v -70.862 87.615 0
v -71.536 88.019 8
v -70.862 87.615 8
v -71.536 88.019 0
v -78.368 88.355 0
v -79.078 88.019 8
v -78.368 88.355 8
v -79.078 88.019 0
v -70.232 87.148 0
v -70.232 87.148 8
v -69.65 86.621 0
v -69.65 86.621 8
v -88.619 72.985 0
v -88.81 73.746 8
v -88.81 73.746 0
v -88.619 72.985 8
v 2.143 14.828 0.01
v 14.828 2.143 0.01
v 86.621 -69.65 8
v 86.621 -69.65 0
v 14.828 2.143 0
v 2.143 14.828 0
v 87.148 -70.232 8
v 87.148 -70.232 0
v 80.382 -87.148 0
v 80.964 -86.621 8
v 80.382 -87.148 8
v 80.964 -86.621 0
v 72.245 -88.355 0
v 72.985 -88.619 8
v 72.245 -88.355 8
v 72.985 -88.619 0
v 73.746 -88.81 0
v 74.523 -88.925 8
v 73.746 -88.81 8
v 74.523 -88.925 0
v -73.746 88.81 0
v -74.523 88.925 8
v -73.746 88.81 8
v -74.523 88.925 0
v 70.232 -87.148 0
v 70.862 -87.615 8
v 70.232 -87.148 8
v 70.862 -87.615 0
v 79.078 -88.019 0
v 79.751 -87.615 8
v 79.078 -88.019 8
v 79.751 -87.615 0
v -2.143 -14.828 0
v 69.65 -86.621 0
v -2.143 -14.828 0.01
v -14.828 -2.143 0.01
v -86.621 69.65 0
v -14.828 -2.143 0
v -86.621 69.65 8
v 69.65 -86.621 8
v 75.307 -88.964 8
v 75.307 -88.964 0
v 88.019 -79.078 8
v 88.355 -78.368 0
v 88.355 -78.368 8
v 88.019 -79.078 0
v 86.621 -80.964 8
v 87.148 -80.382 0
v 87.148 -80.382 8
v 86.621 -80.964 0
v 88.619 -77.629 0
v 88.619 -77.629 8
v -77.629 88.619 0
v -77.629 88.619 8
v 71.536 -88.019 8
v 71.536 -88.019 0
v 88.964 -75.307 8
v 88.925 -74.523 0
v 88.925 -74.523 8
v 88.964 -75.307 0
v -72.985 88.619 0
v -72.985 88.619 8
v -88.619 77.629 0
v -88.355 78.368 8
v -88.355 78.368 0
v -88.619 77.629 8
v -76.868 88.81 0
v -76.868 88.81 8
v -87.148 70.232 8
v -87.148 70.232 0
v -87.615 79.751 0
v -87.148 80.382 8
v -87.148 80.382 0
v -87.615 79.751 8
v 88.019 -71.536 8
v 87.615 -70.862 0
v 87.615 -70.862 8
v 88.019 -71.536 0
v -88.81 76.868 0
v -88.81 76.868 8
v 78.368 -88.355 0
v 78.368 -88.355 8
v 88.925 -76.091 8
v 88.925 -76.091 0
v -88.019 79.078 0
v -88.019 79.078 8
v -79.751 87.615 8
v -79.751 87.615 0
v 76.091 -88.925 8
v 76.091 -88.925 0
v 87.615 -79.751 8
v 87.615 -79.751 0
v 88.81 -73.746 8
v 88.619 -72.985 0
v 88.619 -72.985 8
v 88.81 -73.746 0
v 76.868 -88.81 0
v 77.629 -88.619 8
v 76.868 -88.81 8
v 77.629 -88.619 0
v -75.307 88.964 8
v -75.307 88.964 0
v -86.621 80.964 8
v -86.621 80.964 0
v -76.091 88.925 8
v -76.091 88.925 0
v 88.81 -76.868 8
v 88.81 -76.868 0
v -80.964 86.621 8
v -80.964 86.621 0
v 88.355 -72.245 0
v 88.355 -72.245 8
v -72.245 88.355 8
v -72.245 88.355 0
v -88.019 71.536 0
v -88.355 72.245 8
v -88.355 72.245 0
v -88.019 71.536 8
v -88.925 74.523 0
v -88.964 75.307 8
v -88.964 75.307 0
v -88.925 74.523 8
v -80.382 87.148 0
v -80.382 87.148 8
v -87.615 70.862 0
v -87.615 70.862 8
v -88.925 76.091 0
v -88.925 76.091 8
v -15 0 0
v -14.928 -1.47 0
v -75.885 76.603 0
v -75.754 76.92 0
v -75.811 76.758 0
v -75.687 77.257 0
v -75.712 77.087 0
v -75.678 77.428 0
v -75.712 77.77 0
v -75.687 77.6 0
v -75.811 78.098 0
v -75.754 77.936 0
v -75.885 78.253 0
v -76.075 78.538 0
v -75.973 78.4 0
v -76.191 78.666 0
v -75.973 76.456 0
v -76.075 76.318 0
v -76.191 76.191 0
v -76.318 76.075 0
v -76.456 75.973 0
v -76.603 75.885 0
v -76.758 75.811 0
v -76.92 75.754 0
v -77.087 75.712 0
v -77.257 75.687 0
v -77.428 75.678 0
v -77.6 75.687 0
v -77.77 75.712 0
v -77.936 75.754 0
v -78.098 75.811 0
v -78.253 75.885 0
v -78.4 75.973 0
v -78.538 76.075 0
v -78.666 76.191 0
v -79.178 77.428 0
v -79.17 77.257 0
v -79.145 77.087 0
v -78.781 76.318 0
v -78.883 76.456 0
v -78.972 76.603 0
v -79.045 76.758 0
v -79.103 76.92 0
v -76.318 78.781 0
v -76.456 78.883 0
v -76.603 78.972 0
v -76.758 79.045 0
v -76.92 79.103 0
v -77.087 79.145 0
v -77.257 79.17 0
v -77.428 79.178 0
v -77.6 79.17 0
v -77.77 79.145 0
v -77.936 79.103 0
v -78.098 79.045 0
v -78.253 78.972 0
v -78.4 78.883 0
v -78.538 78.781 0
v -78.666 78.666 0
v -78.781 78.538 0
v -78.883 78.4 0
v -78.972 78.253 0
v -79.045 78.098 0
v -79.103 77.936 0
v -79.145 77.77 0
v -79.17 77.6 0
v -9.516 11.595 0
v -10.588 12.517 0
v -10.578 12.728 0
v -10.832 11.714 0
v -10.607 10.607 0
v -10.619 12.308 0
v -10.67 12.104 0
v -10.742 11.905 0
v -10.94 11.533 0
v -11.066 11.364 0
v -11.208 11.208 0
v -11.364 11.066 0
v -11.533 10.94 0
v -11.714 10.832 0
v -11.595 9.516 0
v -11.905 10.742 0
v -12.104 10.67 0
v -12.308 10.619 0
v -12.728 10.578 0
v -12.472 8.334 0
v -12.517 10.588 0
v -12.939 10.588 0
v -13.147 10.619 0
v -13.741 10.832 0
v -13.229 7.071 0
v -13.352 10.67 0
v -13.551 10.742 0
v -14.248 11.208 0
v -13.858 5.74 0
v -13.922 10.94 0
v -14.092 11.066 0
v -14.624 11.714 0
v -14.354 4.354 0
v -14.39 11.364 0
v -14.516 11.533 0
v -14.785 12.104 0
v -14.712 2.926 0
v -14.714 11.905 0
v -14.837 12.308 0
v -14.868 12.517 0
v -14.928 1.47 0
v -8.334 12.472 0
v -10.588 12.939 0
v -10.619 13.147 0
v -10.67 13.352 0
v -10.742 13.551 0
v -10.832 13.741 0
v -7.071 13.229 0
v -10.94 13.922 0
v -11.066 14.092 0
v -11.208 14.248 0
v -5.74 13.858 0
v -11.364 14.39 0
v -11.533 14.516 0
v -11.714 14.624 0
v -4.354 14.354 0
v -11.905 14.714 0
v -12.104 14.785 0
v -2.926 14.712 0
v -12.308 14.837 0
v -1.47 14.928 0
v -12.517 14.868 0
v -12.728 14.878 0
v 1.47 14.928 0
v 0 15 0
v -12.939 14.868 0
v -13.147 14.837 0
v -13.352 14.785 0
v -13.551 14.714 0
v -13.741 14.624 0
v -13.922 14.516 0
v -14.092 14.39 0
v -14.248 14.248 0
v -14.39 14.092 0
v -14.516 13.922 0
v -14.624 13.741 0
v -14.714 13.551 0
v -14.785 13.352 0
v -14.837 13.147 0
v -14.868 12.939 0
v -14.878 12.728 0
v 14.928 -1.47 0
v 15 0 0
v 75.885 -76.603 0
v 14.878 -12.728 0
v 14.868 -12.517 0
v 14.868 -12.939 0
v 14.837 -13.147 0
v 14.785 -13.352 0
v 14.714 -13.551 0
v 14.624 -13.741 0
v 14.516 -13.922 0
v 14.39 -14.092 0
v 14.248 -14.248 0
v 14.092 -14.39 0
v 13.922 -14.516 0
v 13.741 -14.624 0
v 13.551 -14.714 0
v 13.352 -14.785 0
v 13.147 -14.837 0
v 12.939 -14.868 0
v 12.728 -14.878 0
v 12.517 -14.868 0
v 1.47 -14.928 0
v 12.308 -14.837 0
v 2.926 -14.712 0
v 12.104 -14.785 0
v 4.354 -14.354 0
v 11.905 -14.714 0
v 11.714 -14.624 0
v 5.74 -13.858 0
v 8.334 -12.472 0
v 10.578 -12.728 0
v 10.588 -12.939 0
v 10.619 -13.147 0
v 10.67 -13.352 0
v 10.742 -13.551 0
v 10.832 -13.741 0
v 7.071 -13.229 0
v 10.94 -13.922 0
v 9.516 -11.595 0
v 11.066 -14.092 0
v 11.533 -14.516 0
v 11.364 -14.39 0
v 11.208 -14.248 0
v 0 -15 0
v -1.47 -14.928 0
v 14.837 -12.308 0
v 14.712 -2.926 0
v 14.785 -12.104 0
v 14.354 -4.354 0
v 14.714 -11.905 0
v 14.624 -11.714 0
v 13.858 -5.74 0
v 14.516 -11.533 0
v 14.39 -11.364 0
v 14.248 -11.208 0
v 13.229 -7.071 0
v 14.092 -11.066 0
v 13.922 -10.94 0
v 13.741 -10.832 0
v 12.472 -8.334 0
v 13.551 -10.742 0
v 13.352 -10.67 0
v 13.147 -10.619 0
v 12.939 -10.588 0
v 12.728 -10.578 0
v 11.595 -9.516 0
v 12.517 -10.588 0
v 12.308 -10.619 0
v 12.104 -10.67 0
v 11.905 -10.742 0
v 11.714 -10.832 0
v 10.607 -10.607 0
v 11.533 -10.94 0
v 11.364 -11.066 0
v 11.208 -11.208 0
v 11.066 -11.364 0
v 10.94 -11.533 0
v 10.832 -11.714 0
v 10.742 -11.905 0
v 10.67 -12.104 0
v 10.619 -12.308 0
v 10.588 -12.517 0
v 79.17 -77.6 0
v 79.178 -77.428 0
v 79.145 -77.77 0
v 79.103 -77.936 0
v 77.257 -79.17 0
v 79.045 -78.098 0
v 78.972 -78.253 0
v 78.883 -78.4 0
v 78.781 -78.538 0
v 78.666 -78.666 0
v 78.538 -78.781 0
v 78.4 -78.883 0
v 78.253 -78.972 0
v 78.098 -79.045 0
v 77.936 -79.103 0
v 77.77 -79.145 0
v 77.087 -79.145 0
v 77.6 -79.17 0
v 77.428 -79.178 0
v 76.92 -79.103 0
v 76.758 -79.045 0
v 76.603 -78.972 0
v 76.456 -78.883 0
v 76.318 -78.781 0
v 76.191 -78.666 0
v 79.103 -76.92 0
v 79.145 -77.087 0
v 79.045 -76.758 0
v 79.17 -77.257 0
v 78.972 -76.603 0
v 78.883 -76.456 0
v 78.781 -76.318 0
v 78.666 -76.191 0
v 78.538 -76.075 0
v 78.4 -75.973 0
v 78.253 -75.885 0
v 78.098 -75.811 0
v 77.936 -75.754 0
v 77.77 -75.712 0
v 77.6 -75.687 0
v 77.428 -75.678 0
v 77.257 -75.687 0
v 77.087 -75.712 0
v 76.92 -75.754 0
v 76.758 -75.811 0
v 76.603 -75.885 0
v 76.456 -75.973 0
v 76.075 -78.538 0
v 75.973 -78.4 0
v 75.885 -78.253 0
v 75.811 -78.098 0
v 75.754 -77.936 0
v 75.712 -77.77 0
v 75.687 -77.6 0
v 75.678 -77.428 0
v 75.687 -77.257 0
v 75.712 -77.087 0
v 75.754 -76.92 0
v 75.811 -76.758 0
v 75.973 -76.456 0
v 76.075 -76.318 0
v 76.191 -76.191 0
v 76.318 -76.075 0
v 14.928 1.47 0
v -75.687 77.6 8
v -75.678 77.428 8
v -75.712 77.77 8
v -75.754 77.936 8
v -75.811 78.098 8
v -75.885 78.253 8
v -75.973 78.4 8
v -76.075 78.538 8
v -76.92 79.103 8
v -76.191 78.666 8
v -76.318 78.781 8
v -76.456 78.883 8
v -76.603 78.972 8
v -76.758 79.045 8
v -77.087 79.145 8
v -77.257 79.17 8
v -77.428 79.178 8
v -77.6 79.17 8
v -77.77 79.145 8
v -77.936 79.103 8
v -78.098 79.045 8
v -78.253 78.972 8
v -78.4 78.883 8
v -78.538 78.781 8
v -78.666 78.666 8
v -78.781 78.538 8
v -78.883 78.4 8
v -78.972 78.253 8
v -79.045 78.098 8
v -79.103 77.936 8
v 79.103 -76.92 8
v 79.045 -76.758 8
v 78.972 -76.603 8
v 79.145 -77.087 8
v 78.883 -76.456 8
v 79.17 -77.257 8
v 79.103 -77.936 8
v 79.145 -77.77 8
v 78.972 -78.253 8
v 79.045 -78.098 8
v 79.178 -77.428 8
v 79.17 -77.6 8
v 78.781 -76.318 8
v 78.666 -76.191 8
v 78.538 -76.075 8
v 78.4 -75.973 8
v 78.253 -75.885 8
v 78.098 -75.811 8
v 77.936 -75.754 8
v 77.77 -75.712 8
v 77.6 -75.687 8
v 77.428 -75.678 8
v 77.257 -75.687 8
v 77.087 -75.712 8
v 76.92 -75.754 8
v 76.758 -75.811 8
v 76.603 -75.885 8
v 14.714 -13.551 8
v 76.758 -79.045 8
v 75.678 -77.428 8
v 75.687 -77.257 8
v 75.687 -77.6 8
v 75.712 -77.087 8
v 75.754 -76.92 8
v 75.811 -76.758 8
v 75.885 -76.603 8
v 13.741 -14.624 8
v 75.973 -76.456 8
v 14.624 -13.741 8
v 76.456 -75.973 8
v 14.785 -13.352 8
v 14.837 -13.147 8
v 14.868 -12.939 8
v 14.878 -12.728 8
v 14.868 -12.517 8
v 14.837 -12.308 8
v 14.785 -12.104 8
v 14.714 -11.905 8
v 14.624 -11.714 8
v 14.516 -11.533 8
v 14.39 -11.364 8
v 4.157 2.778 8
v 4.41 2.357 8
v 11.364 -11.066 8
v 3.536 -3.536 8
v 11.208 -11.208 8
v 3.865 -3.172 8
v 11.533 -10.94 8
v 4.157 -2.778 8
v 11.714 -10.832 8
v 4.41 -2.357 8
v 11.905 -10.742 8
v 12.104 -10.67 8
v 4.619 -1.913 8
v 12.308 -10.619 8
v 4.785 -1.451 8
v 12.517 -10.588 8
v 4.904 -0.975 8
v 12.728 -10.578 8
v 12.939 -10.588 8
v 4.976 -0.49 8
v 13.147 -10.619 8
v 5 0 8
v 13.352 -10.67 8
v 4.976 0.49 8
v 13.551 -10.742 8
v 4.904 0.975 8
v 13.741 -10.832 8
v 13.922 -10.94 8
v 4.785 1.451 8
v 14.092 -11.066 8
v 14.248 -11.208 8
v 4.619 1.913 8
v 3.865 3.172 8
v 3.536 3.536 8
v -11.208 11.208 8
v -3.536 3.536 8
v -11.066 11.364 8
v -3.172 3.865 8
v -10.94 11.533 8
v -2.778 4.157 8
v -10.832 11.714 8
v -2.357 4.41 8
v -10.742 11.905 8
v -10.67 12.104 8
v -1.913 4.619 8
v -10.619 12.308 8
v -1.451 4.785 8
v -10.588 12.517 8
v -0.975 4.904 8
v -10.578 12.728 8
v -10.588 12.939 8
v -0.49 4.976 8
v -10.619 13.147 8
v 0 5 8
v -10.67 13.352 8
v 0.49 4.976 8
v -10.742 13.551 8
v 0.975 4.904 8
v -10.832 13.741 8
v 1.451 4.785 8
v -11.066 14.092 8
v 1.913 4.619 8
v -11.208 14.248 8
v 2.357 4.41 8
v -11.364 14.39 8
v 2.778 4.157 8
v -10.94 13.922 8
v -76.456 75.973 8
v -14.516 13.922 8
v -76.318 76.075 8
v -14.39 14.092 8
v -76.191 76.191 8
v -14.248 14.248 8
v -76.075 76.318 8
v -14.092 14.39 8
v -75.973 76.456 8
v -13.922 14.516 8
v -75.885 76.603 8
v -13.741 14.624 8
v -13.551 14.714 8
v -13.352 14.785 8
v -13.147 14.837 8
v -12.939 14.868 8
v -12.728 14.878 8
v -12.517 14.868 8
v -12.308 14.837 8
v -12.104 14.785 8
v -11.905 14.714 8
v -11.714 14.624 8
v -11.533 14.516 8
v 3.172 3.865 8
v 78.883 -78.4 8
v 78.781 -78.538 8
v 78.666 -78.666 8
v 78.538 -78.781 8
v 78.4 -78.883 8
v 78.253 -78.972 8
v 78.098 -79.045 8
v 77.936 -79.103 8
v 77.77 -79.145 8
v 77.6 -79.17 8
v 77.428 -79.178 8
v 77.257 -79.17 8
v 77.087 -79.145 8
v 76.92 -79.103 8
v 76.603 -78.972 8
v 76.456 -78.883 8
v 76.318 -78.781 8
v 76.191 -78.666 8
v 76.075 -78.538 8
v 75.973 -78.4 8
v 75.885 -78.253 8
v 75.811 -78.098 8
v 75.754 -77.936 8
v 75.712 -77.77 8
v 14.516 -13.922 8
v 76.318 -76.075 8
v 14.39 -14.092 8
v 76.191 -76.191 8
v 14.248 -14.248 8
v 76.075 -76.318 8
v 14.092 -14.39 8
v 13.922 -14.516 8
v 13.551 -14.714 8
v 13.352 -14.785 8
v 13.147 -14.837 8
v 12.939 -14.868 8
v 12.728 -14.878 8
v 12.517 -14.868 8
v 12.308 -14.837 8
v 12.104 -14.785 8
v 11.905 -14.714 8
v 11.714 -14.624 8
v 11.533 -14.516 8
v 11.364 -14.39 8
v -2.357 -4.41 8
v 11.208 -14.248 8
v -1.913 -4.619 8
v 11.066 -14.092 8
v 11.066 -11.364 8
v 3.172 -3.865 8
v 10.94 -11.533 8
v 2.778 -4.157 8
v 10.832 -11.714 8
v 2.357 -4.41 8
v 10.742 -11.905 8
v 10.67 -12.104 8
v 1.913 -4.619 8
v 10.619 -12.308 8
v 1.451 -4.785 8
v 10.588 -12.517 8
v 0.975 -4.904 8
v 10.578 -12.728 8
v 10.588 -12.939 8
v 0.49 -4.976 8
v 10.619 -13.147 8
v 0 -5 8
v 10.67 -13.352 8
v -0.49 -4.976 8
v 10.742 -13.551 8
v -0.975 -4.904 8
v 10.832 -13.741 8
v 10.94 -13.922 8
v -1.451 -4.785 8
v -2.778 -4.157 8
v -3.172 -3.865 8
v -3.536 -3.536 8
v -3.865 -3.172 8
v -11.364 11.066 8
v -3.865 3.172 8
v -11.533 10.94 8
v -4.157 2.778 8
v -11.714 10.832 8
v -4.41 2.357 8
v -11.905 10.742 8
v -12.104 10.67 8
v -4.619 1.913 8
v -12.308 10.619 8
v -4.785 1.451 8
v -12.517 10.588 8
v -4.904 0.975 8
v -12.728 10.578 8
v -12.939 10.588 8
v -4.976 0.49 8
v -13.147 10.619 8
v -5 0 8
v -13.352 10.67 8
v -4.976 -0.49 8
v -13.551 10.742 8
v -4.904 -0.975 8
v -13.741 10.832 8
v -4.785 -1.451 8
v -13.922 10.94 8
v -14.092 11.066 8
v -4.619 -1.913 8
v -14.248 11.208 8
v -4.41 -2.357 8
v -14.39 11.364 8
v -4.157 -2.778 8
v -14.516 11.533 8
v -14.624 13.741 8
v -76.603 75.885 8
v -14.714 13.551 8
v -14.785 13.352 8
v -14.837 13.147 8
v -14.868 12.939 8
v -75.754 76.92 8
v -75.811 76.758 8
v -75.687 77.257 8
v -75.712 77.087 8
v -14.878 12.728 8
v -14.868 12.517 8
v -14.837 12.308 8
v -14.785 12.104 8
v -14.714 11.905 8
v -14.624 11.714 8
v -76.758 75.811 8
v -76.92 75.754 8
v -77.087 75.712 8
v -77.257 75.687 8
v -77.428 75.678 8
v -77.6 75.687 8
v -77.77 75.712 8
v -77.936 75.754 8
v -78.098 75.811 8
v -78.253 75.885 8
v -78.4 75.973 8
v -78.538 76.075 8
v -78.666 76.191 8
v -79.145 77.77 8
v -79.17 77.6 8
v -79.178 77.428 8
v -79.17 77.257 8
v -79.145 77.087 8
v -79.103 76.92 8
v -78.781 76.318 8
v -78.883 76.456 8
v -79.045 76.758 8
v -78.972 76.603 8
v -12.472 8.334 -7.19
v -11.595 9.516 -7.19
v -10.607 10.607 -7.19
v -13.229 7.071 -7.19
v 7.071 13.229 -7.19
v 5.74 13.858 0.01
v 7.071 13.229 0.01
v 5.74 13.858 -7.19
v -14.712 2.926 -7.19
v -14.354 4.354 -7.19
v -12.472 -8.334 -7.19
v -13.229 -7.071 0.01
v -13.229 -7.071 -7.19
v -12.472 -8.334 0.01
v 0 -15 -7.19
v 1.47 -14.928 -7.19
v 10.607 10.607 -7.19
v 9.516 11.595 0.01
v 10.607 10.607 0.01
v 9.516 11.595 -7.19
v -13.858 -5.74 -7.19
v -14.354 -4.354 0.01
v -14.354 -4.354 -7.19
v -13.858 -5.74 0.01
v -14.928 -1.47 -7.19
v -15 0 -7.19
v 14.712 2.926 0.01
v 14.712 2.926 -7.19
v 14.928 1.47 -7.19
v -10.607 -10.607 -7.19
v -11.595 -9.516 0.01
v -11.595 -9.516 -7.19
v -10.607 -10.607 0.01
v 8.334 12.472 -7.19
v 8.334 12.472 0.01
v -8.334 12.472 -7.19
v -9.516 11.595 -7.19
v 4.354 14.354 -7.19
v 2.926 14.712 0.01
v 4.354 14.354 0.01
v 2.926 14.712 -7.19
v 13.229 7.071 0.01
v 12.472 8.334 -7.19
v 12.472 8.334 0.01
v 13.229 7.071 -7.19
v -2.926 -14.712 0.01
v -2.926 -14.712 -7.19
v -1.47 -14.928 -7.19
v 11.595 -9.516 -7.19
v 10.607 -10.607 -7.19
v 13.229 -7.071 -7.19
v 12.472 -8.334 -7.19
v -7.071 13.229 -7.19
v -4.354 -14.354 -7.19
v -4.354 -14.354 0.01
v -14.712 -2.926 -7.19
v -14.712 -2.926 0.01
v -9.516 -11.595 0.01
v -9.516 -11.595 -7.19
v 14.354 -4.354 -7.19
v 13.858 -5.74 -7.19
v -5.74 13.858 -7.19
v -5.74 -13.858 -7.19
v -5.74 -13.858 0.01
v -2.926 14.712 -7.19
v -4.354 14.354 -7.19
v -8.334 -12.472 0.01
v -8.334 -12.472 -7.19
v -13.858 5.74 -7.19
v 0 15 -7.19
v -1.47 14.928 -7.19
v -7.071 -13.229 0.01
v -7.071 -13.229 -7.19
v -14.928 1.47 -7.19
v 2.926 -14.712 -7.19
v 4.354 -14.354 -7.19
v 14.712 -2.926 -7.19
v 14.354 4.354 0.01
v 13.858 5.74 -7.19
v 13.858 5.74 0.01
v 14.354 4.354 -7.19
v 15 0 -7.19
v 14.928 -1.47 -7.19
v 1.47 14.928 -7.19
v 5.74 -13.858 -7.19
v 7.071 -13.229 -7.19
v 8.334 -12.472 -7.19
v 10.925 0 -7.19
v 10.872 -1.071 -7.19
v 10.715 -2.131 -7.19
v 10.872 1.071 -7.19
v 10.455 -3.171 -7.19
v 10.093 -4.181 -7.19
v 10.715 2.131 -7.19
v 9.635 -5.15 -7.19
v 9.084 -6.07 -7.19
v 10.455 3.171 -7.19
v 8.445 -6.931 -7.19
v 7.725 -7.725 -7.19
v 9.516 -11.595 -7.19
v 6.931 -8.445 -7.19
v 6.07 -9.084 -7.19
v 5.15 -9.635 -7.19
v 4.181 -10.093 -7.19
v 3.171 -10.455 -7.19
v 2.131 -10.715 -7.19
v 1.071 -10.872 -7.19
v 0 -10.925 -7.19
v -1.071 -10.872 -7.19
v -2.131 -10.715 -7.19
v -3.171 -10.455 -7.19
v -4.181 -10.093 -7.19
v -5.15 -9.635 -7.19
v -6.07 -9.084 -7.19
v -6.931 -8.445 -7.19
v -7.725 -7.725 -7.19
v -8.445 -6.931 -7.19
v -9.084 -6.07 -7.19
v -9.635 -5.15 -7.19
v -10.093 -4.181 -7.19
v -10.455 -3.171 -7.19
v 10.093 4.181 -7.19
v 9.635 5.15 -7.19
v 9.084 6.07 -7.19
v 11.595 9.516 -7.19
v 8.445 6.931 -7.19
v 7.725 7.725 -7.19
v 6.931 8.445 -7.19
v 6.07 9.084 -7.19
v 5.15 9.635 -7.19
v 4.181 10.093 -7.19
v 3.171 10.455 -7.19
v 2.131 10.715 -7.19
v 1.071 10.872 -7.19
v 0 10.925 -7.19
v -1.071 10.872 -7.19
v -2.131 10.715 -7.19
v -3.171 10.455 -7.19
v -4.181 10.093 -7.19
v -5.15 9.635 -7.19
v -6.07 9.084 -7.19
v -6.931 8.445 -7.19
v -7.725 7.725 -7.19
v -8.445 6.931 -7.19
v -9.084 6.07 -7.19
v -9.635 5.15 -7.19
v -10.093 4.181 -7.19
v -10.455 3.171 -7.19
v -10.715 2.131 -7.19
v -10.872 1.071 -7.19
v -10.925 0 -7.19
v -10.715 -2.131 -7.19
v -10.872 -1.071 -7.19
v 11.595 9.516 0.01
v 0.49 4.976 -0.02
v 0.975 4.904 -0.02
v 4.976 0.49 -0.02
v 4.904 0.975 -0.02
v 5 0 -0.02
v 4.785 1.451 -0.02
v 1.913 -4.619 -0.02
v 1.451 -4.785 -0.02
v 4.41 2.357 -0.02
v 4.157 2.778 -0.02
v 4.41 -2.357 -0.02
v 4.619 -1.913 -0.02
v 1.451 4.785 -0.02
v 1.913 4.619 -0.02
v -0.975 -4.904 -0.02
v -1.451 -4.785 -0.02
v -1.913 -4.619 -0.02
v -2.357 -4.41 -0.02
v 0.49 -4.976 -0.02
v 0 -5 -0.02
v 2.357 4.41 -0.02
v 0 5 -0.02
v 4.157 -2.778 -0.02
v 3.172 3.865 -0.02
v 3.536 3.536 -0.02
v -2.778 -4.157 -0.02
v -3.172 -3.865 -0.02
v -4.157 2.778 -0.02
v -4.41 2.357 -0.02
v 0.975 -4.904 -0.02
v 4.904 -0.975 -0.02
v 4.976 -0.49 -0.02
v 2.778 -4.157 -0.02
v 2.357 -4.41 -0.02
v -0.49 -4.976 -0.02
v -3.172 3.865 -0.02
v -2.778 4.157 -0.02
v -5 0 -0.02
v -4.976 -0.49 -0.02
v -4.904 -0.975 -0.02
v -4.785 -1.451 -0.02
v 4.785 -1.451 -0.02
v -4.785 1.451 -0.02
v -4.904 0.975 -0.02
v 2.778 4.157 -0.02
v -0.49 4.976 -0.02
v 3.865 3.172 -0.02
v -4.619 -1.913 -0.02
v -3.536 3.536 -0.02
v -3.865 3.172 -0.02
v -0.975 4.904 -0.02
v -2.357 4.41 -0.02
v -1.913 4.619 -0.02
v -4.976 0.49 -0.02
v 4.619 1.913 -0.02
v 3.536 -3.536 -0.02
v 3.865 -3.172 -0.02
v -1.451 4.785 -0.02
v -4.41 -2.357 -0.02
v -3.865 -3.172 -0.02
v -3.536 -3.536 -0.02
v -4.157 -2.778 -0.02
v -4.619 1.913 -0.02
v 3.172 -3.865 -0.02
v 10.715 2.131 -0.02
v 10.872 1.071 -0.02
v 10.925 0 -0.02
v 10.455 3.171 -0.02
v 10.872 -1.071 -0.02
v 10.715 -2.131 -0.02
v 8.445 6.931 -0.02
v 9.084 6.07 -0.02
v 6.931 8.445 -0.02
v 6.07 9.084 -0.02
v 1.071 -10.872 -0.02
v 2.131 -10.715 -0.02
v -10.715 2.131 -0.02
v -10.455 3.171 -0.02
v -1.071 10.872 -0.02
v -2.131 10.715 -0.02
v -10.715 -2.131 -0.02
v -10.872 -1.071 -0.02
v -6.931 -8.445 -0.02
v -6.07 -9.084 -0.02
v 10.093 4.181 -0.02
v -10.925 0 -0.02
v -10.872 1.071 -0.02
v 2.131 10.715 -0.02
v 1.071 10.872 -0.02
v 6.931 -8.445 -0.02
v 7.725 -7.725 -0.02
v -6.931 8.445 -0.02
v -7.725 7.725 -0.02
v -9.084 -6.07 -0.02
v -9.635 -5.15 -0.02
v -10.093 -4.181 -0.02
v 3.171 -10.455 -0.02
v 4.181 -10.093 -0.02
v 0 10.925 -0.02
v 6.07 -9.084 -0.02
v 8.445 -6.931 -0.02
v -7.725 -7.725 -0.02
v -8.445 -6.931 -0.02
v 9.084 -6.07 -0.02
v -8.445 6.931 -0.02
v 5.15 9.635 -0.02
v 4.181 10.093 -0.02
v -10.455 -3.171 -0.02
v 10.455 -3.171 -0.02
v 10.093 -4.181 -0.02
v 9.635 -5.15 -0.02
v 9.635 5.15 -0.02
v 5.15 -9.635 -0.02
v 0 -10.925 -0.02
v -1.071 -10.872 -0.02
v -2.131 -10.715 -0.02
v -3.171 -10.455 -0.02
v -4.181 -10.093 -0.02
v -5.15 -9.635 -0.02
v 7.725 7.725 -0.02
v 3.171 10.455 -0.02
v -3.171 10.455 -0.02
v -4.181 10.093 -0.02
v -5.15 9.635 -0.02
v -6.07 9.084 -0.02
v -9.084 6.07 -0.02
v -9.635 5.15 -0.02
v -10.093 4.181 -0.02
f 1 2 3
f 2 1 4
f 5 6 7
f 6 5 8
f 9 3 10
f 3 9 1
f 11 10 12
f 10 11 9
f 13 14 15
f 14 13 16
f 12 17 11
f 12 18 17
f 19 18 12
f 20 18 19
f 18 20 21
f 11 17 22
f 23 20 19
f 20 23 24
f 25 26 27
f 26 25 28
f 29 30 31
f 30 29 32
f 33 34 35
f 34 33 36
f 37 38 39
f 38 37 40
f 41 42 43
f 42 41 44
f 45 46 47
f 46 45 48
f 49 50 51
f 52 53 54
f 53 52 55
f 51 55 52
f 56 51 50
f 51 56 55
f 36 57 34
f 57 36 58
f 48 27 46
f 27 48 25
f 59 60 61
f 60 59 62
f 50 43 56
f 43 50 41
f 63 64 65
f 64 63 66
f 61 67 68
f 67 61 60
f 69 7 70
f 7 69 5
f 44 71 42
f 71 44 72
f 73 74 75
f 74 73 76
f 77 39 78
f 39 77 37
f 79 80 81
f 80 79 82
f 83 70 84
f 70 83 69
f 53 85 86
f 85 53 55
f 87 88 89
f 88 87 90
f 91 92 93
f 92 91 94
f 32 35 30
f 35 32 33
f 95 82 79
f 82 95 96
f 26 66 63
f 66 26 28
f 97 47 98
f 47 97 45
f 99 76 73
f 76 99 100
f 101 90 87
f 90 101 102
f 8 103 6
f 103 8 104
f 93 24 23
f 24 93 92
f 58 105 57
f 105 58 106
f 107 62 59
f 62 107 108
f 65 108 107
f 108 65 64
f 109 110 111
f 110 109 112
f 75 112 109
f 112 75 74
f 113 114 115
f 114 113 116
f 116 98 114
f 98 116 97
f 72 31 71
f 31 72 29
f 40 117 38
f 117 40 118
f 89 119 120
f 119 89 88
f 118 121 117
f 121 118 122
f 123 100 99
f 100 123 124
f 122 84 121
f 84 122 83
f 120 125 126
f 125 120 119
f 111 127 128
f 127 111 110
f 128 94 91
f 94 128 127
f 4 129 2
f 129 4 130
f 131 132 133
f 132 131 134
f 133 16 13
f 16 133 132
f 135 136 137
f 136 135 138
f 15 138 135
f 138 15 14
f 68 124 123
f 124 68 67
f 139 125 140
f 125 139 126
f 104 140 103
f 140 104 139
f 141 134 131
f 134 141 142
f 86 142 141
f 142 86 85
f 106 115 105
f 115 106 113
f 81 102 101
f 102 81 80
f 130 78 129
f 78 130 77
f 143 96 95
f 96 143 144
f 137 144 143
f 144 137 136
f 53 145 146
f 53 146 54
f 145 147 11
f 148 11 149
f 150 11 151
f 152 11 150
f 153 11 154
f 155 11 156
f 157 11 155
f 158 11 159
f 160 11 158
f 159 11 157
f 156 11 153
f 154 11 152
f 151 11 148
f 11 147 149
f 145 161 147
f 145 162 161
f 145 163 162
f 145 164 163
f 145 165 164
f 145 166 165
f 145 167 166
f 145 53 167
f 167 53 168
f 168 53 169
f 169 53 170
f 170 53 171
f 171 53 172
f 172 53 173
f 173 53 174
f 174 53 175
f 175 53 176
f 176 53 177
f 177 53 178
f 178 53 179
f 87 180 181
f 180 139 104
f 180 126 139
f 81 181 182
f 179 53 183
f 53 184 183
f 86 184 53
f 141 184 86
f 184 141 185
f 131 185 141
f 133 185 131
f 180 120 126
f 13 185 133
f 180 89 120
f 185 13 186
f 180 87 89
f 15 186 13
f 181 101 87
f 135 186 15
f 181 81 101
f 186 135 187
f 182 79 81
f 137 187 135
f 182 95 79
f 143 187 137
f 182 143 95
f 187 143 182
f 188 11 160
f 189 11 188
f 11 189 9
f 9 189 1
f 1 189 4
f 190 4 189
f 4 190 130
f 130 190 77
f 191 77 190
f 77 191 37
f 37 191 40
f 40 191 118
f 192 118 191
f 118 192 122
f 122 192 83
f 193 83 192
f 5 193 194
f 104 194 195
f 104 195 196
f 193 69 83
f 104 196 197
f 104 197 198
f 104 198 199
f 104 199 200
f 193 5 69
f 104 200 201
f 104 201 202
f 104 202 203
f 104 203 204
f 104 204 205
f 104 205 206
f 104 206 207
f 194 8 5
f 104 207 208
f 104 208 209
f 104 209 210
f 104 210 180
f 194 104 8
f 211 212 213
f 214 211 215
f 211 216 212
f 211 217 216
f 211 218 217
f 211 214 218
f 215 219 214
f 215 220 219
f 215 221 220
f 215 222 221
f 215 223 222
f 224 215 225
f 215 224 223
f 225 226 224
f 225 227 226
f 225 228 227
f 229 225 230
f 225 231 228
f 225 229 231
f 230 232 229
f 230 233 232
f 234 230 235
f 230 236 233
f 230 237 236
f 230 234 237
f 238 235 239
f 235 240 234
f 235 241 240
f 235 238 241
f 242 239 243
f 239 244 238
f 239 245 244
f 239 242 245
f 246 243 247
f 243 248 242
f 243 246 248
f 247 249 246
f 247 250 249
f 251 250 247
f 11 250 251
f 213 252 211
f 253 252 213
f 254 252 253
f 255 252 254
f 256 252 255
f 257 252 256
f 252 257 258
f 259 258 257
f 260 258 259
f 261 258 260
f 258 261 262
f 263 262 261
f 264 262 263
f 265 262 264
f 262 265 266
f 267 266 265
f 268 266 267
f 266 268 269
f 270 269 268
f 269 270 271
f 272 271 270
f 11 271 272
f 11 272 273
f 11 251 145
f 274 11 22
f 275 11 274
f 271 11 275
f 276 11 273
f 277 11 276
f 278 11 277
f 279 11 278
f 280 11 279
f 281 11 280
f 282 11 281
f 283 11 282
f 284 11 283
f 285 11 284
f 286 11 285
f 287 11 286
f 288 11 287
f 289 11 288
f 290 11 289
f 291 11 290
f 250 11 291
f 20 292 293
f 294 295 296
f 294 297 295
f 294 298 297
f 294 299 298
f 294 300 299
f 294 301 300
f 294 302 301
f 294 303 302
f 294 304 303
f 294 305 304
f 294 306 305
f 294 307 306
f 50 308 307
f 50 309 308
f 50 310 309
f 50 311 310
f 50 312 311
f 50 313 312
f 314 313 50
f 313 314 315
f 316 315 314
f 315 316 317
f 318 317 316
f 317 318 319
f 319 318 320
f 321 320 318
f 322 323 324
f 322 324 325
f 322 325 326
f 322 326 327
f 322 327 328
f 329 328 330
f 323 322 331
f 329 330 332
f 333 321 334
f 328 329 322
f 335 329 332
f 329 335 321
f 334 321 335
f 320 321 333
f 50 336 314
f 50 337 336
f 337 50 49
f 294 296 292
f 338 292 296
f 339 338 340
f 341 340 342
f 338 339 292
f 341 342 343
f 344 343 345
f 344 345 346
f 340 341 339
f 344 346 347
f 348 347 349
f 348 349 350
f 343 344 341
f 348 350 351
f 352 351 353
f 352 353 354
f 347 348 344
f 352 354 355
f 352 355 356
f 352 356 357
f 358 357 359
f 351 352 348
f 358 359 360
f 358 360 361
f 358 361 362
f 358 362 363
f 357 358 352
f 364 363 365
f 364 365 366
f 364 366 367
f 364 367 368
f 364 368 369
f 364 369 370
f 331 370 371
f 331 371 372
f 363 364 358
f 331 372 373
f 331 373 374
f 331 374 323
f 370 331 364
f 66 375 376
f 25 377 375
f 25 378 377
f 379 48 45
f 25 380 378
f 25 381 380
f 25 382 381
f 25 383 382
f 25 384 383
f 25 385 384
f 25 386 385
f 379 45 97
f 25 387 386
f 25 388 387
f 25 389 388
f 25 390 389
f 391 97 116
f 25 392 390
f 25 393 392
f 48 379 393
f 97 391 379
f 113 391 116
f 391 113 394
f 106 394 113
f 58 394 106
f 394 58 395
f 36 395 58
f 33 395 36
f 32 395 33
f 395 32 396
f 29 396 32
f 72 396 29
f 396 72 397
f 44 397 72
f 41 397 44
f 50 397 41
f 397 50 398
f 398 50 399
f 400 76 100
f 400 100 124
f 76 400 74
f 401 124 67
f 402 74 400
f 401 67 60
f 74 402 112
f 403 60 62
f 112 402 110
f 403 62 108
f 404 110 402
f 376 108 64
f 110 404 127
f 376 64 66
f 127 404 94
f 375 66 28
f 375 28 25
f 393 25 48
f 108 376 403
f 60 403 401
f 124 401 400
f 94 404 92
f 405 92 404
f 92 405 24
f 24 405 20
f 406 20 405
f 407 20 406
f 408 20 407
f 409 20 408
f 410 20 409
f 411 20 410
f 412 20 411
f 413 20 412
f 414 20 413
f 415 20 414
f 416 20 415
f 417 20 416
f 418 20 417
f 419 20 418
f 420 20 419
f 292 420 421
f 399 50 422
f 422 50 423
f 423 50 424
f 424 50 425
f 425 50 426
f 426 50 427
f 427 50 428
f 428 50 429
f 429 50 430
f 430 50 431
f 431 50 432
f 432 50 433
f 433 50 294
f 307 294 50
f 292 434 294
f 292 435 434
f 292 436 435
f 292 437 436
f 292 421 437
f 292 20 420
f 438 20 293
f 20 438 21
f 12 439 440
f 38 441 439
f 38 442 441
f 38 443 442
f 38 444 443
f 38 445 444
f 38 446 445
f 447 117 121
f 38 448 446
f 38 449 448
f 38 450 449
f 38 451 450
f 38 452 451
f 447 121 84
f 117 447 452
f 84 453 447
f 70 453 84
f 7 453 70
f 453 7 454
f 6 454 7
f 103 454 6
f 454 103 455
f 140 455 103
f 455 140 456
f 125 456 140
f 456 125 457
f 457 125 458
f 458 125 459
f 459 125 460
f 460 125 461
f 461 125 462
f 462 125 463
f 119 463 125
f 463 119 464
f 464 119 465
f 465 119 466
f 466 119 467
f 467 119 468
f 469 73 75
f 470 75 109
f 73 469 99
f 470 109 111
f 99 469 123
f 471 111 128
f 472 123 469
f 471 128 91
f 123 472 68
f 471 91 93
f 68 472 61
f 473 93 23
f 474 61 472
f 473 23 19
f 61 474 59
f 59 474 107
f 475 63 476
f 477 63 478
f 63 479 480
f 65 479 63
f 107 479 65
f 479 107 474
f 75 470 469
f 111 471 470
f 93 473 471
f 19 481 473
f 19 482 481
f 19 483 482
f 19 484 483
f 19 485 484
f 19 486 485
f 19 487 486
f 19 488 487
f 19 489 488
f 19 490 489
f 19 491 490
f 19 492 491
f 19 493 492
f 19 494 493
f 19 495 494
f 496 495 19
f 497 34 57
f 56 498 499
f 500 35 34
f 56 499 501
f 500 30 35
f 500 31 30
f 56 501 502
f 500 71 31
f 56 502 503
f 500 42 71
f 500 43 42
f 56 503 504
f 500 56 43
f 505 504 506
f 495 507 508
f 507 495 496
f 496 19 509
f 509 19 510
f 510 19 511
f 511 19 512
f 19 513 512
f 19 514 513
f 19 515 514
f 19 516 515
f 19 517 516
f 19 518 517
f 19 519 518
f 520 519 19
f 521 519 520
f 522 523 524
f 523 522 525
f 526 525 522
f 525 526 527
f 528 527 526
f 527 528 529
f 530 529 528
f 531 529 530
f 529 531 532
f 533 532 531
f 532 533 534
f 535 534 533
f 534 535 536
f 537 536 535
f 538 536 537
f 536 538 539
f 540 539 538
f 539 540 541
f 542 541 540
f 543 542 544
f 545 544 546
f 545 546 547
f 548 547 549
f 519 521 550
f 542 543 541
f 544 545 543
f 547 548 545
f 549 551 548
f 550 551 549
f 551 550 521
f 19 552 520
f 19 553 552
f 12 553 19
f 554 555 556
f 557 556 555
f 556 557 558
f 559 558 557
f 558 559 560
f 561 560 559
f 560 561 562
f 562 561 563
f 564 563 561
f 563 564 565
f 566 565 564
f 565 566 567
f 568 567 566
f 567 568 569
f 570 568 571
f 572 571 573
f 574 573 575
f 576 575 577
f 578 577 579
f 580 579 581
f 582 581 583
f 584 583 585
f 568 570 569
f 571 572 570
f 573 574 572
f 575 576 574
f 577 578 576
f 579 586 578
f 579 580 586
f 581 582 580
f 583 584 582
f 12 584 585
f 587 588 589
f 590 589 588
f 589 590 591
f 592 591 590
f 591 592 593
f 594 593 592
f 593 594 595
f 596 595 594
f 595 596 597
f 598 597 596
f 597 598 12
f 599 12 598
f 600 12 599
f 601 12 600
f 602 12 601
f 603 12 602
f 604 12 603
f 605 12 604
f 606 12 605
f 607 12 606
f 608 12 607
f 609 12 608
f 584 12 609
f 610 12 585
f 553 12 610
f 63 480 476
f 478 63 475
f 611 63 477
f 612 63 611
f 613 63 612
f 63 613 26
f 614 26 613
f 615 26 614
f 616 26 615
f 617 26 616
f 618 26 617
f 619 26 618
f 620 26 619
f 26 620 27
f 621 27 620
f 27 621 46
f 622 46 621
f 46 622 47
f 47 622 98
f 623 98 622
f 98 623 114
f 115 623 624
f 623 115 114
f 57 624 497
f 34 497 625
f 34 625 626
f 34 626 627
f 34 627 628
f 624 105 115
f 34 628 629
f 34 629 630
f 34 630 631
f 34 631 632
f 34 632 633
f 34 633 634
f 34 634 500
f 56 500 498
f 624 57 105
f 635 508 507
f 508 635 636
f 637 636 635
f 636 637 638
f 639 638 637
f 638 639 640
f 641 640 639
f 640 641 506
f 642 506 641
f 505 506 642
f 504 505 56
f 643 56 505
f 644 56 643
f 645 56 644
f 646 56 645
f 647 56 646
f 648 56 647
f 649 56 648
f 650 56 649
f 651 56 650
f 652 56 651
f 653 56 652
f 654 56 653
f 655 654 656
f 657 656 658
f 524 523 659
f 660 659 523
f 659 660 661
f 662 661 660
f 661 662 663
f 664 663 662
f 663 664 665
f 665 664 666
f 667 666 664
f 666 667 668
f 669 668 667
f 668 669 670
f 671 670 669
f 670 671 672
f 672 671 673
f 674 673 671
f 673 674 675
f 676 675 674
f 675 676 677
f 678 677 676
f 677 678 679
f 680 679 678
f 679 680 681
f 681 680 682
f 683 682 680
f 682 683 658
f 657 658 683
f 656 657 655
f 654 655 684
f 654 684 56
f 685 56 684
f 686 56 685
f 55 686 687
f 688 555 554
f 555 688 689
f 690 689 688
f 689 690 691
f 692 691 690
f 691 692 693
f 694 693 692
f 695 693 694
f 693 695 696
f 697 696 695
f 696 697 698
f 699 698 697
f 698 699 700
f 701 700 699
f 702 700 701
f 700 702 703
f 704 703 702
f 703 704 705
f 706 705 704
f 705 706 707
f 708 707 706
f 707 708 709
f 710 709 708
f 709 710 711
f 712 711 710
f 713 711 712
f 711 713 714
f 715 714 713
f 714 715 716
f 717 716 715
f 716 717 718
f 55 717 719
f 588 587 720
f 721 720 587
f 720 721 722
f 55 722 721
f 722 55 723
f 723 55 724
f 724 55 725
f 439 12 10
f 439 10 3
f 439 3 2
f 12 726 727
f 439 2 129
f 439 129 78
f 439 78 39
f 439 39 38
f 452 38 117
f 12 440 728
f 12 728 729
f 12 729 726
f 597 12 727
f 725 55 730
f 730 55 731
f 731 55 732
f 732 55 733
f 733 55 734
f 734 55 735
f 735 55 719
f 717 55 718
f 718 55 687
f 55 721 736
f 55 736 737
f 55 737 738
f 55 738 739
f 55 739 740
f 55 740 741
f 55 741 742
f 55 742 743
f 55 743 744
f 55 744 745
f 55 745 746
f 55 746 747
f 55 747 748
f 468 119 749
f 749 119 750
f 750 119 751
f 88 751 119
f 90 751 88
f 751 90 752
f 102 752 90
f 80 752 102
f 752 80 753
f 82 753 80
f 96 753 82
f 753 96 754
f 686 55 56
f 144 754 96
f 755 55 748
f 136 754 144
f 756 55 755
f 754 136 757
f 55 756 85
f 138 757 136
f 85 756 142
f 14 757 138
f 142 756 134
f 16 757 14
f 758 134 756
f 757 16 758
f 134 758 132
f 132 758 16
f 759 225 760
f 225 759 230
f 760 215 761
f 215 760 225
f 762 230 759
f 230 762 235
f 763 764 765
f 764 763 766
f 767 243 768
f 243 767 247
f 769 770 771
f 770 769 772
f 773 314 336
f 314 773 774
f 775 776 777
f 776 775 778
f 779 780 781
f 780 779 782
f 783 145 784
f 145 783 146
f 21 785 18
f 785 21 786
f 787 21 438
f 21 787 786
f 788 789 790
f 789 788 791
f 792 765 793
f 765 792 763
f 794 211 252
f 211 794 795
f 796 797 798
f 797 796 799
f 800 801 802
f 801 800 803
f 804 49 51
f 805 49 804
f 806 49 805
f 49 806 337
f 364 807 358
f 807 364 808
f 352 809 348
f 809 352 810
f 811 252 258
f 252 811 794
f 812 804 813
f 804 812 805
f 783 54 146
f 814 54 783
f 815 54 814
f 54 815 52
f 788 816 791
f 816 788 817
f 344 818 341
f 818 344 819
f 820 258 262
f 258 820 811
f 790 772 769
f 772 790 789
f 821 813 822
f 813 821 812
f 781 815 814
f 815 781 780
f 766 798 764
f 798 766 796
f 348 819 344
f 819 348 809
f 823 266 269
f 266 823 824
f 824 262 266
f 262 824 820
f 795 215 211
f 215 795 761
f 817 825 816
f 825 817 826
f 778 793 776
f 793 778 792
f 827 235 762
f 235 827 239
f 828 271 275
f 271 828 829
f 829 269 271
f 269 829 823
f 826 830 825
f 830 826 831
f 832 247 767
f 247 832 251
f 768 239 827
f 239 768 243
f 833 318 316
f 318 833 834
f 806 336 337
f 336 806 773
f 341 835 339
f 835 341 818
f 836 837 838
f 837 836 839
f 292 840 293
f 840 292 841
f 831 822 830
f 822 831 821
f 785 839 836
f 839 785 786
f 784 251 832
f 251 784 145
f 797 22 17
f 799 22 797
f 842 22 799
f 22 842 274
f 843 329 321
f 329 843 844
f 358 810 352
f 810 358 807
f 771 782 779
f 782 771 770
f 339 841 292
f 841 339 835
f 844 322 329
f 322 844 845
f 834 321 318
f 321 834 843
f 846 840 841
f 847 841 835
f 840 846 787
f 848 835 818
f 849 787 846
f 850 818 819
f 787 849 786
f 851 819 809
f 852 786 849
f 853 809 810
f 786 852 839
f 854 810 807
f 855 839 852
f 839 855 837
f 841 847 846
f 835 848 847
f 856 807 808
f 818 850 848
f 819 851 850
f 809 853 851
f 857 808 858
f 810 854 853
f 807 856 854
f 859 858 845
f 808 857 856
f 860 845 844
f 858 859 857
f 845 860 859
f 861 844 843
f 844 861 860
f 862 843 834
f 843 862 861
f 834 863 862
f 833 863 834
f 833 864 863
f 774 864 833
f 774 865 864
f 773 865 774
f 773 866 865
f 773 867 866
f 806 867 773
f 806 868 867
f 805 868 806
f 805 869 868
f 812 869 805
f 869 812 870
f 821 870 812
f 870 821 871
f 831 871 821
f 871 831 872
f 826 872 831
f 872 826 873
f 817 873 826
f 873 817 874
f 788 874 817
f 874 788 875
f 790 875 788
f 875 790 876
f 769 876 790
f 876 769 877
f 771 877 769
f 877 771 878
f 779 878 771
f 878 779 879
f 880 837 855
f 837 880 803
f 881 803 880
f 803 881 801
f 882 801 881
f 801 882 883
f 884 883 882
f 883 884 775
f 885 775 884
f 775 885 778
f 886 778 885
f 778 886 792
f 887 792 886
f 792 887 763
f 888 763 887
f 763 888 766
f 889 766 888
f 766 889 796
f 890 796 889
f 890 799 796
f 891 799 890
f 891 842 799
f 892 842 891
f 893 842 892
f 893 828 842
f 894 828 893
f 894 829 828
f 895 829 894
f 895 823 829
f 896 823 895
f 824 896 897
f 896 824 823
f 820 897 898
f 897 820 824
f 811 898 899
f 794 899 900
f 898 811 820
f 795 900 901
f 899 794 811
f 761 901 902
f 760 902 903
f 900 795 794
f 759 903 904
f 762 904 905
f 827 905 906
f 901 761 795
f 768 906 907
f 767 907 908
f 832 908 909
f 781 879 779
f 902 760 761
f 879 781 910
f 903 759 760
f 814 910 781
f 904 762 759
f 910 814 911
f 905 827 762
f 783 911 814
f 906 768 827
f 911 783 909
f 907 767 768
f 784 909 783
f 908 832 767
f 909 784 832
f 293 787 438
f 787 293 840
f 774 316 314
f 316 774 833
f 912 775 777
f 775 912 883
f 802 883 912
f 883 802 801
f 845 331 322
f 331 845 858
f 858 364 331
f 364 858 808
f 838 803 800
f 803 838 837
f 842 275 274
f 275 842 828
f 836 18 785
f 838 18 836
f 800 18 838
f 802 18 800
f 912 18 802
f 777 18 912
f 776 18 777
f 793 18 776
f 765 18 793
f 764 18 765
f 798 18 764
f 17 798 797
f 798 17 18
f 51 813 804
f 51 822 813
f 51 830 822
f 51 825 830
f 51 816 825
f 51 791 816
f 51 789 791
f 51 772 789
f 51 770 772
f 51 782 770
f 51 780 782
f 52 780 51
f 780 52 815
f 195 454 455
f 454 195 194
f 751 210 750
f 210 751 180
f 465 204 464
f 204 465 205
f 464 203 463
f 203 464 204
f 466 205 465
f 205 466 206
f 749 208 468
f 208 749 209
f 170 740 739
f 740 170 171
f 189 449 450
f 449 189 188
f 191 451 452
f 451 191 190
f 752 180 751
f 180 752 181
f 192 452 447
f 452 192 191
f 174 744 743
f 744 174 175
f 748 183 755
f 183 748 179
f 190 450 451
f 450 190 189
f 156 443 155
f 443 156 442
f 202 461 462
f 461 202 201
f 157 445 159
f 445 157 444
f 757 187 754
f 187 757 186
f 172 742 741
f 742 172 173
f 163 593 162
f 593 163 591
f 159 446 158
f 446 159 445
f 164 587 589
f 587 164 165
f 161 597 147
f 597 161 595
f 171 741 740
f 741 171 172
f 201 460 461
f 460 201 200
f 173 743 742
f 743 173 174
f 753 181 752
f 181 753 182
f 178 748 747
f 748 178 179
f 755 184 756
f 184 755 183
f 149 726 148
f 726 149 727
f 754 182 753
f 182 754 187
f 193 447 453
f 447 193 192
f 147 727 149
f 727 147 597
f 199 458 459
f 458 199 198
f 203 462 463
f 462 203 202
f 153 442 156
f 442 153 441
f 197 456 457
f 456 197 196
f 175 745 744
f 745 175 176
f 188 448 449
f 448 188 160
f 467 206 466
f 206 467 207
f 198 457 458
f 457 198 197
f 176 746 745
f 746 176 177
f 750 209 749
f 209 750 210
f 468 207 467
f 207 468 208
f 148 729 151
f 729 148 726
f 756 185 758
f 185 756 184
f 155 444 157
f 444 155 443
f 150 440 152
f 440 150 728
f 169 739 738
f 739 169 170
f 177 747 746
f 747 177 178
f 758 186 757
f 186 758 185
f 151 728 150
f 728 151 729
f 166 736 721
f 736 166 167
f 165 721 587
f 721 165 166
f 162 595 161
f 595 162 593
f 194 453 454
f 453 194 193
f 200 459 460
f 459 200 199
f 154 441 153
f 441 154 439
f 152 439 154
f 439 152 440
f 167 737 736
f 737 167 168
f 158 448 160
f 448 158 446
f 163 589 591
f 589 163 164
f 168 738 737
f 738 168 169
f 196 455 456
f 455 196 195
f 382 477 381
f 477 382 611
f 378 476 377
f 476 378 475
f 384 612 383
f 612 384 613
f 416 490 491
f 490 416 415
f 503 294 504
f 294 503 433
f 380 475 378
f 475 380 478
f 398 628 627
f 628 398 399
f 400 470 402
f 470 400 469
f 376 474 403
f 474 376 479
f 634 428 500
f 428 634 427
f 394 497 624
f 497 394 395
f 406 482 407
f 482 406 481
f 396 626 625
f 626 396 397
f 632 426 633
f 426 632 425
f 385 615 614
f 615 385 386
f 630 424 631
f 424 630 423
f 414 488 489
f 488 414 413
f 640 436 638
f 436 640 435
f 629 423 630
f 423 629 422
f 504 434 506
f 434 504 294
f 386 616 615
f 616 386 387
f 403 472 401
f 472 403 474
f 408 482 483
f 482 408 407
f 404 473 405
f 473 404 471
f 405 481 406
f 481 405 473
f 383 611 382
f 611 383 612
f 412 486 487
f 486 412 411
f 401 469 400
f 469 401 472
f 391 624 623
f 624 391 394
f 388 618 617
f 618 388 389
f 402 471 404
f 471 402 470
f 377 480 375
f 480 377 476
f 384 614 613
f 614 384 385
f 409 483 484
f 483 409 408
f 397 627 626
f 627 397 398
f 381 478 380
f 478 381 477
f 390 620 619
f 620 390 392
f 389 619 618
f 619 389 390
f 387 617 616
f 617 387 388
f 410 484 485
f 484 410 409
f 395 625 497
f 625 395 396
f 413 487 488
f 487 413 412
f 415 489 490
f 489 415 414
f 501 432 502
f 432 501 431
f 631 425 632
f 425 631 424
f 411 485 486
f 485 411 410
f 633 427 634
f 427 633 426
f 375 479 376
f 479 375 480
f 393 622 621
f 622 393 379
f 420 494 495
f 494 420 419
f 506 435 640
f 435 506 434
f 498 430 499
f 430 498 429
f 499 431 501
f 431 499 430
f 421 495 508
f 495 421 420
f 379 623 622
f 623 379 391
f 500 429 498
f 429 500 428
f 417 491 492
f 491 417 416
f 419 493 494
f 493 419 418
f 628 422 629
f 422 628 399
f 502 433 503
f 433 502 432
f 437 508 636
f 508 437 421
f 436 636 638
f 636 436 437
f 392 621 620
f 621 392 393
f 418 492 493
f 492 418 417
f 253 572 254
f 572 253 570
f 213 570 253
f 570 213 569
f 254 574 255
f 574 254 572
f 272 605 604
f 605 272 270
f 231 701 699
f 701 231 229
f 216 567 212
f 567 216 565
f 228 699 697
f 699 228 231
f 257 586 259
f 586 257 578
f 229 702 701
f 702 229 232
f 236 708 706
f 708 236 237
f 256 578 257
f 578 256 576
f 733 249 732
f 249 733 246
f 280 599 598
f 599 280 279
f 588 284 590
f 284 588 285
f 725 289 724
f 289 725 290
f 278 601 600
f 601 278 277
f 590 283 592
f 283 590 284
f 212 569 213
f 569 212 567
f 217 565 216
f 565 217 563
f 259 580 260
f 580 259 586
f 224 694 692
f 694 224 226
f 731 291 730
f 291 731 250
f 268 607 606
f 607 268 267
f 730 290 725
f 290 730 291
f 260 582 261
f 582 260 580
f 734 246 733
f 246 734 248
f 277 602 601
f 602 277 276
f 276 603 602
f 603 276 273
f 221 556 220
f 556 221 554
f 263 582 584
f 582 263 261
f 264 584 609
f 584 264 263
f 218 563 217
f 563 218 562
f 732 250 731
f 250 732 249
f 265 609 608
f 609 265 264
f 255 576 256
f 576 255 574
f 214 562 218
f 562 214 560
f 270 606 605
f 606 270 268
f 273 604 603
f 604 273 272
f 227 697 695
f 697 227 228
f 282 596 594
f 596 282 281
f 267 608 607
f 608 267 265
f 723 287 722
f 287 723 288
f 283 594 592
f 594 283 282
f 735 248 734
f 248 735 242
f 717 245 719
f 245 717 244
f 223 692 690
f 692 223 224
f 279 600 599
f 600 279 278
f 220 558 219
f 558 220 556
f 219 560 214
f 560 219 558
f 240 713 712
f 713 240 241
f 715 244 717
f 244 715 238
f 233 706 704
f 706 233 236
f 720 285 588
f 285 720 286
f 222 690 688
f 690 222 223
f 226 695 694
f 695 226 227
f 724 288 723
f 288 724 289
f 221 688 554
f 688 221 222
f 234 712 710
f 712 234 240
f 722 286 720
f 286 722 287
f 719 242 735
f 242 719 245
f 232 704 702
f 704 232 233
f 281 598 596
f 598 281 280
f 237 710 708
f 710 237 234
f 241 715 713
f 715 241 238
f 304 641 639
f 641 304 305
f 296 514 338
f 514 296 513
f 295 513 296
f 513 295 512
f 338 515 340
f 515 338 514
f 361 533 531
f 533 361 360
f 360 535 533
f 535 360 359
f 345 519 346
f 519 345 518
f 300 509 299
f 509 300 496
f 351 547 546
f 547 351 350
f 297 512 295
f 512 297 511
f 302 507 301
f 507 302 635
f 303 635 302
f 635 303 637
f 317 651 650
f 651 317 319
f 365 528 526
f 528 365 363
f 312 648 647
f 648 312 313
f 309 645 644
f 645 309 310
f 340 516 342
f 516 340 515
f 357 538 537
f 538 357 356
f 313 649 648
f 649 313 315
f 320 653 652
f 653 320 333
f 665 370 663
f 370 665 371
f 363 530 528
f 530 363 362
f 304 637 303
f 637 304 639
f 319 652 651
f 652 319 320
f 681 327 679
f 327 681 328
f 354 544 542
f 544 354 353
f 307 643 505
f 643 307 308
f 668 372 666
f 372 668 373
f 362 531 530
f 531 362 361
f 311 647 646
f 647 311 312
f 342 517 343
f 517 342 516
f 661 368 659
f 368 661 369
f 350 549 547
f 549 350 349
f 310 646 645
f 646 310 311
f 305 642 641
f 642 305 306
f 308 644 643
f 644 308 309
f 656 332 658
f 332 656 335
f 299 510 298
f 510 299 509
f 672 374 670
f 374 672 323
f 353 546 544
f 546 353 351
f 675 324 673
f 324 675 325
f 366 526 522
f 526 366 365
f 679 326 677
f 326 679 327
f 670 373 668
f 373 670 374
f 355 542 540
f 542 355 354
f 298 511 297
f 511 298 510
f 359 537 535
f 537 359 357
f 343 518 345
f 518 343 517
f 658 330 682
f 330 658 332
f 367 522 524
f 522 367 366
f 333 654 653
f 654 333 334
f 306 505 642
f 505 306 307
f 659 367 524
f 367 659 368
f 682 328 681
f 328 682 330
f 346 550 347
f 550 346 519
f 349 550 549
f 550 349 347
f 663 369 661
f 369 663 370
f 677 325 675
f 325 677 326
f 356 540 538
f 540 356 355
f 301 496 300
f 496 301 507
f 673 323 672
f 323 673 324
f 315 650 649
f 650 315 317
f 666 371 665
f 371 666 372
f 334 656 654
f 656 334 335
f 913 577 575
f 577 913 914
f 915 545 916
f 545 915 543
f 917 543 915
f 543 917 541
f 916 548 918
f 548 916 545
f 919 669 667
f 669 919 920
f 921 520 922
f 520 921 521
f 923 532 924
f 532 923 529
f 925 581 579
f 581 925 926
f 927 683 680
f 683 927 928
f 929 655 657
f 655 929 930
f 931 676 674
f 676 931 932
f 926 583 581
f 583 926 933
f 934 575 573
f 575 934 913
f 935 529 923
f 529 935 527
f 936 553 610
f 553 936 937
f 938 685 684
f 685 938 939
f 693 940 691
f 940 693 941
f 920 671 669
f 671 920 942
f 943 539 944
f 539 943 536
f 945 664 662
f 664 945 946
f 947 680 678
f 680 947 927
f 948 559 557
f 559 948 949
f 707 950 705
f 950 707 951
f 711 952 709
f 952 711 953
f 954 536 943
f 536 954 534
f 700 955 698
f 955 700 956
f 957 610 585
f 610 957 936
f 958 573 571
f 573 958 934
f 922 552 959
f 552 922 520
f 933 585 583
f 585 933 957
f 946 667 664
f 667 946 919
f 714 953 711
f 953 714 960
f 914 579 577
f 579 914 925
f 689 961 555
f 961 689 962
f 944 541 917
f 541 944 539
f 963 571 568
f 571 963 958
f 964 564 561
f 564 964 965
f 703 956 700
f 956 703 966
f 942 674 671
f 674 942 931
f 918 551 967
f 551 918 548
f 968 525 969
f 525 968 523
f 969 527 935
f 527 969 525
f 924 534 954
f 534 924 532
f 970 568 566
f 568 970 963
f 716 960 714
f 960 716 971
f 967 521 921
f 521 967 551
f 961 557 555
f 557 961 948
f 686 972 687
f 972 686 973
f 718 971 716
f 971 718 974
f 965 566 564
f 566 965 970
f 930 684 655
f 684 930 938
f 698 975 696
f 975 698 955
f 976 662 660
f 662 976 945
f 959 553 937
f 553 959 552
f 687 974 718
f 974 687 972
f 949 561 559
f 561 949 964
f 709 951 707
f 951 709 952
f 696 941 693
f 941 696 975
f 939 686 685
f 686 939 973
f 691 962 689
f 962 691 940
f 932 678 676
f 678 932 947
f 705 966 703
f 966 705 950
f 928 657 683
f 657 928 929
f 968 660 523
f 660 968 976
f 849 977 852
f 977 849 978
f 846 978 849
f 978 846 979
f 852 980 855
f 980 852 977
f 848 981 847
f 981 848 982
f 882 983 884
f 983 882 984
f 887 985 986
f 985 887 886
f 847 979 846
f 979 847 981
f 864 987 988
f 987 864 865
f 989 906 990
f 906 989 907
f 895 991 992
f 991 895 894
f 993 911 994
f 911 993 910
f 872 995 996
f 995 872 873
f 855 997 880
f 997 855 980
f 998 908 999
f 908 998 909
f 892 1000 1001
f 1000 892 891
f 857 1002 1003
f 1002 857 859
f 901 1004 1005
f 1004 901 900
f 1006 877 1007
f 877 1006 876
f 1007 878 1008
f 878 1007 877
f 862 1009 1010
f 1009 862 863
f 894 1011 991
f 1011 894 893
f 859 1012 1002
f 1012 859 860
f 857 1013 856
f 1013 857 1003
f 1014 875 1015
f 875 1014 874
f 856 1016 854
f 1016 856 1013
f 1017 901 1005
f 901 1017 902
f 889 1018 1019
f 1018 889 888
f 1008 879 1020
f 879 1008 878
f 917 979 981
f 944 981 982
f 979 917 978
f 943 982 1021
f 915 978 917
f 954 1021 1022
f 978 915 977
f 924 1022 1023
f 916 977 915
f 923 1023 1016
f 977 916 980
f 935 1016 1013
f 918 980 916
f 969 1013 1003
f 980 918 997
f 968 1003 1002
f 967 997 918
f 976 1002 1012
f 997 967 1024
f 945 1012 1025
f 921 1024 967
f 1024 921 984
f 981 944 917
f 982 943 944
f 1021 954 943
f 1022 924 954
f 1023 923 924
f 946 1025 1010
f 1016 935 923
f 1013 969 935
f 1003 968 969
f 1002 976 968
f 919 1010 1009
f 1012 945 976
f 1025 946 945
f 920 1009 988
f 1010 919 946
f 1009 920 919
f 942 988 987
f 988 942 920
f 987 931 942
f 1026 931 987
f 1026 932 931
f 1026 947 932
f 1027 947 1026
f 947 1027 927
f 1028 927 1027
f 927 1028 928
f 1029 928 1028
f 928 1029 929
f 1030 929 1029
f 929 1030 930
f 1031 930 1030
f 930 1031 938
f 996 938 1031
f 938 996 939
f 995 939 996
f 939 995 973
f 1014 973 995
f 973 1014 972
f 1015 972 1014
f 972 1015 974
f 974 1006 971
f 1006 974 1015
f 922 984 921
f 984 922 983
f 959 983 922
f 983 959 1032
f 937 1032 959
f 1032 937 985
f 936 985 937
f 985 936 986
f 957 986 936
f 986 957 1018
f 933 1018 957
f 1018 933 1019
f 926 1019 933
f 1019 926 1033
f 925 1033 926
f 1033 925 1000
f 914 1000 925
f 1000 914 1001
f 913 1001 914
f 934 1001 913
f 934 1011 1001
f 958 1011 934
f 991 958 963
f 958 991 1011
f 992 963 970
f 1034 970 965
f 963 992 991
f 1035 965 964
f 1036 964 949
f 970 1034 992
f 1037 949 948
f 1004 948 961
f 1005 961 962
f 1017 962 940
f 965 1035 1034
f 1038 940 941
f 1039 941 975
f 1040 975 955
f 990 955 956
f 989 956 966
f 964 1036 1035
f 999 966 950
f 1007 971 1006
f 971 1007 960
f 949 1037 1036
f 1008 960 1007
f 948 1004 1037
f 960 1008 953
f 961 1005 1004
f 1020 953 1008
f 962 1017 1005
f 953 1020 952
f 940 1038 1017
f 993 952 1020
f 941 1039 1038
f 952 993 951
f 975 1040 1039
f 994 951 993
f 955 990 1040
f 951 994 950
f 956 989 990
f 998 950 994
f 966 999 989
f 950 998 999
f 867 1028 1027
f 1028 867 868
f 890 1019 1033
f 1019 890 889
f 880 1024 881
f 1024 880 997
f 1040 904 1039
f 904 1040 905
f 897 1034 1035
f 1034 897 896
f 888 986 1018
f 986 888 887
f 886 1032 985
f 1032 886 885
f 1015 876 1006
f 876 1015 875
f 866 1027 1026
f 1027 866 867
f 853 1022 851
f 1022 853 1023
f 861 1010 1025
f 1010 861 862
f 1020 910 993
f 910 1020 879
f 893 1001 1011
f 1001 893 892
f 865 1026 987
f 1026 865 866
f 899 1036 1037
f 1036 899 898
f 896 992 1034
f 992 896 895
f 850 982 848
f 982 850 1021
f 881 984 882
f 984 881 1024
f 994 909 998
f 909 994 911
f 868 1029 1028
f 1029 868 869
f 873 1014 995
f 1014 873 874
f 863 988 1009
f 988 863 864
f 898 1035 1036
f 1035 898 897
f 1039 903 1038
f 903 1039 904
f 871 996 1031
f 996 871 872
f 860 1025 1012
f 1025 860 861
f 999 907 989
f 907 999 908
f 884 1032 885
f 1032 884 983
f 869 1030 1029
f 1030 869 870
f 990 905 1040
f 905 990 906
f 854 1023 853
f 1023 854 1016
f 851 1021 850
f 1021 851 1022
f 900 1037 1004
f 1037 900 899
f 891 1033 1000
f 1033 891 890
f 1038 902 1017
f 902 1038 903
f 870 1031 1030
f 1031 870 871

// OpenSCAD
// Gen-CS — rear BEARING BRIDGE (bar endbell, 2026-10-10): a 608 boss on a 24 mm wide bar that spans the
// two frame rods at 135 deg and 135+180 deg (R = flange_bolt_r). The front bridge uses the rods at 45/225 deg, the rear
// bridge the rods at 135/315 deg, so the two bridges cross at 90 deg and the stator is held at 4 points.
// A bar instead of a full disc is what lets this big-ring kit fit ONE 410 mm plate. Print flat face DOWN (boss up, no supports).
// Brace holes (temporary M4 jack rods, R = brace_r) sit on the bar axis.
include <parameters.scad>;
$fn = 64;
bar_w = 24;
bar_len = 2 * (flange_bolt_r + 9);
module bar_2d() { offset(r=8) offset(delta=-8) square([bar_len, bar_w], center=true); }
difference() {
    rotate([0, 0, 135]) union() {
        linear_extrude(endbell_thick) bar_2d();
        translate([0, 0, -bearing_h + 0.01]) cylinder(d=30, h=bearing_h);
    }
    translate([0, 0, -bearing_h - 0.1]) cylinder(d=endbell_shaft_clear, h=50);
    translate([0, 0, -bearing_h - 0.02]) cylinder(d=bearing_d, h=bearing_h);
    for (s = [0, 180]) rotate([0, 0, 135 + s]) translate([flange_bolt_r, 0, -20]) cylinder(d=m3_clear, h=60);
    for (a = brace_angles) translate([brace_r*cos(a), brace_r*sin(a), -20]) cylinder(d=brace_d, h=50);
}
